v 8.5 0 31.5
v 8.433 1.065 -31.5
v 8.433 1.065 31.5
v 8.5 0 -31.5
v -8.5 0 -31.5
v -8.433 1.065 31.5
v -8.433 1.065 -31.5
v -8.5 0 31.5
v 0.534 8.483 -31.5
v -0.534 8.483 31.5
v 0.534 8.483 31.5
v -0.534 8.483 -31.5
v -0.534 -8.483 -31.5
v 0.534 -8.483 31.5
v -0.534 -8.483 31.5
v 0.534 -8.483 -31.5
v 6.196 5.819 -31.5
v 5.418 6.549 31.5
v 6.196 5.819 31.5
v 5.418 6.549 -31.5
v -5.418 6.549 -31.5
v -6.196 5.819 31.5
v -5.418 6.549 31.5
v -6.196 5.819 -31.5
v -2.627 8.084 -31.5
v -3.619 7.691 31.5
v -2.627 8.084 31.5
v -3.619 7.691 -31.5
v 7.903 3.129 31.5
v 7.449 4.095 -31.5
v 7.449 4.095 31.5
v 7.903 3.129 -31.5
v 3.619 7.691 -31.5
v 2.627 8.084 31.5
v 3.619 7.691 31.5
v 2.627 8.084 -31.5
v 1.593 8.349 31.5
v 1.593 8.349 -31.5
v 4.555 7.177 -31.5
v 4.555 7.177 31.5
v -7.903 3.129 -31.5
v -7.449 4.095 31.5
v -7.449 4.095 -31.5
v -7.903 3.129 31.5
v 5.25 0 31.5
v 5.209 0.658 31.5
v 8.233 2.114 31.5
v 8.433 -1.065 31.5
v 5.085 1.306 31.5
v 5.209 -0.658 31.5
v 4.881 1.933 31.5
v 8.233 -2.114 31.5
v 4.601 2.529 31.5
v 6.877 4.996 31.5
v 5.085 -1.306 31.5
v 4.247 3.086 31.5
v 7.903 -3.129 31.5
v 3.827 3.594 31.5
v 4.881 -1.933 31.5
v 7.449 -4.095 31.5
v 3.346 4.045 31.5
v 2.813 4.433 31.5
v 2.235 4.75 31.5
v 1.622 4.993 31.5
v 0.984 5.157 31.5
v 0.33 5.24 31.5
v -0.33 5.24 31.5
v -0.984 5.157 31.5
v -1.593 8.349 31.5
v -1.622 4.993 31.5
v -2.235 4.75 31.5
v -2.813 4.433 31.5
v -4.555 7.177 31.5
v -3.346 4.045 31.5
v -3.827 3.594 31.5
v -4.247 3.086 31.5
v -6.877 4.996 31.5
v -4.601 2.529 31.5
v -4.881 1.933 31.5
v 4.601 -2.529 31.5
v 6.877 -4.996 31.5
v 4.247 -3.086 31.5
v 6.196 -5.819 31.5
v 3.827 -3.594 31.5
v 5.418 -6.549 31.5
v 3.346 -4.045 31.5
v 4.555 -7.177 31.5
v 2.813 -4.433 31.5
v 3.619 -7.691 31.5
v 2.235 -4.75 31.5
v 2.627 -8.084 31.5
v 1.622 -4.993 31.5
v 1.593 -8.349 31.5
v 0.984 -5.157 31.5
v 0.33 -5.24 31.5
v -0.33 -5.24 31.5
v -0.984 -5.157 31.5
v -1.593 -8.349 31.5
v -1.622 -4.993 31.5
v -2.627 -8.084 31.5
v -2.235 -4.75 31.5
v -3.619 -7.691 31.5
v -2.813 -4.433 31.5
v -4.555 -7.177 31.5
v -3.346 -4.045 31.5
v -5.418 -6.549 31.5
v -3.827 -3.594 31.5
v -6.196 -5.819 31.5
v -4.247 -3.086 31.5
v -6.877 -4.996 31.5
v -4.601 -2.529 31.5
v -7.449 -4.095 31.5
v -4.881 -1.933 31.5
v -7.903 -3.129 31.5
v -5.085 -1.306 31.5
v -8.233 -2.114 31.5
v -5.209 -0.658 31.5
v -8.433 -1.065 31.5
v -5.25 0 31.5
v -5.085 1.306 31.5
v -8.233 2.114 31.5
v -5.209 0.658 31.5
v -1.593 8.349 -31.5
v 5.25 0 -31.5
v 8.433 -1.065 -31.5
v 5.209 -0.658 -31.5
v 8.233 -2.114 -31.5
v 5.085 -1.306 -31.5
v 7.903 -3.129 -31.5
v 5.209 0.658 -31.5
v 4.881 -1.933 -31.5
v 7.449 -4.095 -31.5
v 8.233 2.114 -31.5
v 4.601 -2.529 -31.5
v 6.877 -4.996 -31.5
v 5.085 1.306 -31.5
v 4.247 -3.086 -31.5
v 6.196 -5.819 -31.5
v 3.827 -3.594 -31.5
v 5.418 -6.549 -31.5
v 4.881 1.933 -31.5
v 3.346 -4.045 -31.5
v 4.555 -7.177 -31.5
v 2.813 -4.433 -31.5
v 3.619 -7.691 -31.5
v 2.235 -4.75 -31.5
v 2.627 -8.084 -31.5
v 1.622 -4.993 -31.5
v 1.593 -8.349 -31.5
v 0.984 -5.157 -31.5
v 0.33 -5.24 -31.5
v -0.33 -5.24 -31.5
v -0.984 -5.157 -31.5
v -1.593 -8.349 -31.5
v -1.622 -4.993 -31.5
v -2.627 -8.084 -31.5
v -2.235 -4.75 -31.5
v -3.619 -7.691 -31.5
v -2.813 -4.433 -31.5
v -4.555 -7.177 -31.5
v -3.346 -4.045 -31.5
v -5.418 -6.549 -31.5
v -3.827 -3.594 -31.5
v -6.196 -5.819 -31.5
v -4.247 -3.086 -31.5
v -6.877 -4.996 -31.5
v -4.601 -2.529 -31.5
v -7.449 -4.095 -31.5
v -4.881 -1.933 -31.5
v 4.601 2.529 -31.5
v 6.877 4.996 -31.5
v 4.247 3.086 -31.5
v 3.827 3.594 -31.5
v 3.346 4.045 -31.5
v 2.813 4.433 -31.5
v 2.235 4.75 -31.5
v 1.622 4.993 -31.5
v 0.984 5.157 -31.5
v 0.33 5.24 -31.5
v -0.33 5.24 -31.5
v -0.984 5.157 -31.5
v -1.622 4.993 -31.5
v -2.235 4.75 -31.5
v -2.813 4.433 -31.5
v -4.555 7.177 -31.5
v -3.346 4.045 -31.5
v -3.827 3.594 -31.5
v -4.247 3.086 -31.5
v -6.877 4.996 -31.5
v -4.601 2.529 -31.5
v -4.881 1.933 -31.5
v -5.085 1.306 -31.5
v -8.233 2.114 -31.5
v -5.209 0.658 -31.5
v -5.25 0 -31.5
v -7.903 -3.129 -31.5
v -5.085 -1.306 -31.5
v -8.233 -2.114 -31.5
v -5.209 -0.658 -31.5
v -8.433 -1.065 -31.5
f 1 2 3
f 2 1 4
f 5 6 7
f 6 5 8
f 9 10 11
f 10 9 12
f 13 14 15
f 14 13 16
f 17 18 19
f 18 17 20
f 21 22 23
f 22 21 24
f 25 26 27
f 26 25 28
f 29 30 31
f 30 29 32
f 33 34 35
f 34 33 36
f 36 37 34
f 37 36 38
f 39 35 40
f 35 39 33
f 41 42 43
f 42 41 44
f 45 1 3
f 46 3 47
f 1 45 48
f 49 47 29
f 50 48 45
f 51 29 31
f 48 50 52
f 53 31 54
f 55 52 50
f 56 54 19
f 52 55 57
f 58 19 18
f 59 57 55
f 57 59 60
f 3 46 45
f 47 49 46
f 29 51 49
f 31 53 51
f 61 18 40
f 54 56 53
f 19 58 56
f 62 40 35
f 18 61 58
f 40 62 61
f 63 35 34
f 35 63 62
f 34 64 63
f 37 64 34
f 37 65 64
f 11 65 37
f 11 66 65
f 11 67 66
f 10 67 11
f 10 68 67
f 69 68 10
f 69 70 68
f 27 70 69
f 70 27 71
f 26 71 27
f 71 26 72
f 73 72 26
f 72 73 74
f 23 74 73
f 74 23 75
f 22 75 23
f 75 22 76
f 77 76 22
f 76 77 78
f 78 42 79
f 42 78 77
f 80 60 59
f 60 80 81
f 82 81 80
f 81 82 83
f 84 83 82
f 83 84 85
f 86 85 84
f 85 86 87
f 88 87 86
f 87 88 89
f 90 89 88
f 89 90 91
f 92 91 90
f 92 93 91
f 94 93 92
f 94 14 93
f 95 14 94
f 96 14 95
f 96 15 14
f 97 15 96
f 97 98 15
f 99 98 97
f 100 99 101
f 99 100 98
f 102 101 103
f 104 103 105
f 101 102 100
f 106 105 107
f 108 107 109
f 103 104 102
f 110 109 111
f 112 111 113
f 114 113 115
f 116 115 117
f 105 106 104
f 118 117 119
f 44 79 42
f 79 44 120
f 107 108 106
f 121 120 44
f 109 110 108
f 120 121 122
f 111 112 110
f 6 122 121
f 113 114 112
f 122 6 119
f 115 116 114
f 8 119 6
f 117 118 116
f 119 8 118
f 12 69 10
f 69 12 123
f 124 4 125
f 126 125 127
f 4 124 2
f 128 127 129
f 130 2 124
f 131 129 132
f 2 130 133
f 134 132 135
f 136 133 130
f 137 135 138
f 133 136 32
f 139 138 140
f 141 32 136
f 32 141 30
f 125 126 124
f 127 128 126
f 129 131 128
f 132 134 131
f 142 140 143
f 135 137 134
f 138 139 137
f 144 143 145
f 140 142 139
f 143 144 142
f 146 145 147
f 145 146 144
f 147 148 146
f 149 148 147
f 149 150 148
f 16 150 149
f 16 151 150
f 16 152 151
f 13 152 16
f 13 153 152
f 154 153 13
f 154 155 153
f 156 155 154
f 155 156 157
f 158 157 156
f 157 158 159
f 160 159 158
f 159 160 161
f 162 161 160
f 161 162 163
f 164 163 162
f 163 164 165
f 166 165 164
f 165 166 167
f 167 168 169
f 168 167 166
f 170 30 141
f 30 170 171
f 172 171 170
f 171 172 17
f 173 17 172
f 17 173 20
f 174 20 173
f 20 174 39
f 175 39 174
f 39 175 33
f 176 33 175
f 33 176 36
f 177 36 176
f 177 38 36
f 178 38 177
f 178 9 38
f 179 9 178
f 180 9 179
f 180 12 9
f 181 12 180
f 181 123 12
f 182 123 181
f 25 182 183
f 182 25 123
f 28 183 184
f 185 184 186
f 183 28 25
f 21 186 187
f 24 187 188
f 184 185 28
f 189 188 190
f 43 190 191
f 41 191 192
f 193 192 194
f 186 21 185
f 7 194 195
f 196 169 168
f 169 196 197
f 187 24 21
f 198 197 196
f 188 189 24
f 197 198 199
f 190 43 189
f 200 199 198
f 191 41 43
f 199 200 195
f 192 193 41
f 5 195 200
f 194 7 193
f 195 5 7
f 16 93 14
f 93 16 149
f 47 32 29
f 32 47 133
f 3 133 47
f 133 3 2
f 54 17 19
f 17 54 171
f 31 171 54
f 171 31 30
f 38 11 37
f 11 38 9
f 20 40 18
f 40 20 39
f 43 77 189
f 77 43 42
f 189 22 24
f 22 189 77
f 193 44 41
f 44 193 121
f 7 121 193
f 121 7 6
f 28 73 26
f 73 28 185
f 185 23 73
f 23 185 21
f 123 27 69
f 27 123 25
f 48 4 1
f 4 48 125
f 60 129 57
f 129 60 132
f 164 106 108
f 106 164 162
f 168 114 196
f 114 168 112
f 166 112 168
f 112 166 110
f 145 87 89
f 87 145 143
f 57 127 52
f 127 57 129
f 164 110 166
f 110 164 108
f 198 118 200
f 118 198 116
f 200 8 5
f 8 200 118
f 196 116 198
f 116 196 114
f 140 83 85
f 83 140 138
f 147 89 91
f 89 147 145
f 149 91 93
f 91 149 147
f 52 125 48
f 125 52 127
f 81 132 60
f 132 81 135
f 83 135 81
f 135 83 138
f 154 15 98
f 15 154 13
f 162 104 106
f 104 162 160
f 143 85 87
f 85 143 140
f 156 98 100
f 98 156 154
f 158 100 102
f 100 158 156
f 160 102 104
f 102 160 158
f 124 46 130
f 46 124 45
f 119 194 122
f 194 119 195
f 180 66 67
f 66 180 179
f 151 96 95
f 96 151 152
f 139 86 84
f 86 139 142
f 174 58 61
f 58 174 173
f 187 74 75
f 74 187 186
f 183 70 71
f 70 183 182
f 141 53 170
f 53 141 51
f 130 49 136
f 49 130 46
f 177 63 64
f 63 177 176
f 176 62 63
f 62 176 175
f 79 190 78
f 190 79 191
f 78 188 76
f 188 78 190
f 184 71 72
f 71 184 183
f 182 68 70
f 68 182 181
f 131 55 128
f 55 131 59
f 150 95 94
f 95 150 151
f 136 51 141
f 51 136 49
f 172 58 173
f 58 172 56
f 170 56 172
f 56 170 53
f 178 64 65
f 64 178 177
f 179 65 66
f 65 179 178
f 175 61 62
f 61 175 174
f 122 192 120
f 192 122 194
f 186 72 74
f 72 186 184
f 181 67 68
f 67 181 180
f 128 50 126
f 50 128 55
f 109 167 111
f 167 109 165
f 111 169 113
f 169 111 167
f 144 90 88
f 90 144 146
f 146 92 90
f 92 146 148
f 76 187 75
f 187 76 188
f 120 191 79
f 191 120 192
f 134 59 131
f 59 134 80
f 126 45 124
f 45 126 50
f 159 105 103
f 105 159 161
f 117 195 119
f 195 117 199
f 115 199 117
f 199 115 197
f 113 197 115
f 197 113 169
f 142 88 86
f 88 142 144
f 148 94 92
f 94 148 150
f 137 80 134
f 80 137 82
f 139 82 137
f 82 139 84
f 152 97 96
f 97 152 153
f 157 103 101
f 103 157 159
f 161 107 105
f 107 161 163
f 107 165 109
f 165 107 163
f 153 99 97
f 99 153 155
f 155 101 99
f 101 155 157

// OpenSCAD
$fn = 50;


difference() {
	union() {
		translate(v = [0, 0, -31.5000000000]) {
			cylinder(h = 63, r = 8.5000000000);
		}
	}
	union() {
		translate(v = [0, 0, -100.0000000000]) {
			cylinder(h = 200, r = 5.2500000000);
		}
	}
}
